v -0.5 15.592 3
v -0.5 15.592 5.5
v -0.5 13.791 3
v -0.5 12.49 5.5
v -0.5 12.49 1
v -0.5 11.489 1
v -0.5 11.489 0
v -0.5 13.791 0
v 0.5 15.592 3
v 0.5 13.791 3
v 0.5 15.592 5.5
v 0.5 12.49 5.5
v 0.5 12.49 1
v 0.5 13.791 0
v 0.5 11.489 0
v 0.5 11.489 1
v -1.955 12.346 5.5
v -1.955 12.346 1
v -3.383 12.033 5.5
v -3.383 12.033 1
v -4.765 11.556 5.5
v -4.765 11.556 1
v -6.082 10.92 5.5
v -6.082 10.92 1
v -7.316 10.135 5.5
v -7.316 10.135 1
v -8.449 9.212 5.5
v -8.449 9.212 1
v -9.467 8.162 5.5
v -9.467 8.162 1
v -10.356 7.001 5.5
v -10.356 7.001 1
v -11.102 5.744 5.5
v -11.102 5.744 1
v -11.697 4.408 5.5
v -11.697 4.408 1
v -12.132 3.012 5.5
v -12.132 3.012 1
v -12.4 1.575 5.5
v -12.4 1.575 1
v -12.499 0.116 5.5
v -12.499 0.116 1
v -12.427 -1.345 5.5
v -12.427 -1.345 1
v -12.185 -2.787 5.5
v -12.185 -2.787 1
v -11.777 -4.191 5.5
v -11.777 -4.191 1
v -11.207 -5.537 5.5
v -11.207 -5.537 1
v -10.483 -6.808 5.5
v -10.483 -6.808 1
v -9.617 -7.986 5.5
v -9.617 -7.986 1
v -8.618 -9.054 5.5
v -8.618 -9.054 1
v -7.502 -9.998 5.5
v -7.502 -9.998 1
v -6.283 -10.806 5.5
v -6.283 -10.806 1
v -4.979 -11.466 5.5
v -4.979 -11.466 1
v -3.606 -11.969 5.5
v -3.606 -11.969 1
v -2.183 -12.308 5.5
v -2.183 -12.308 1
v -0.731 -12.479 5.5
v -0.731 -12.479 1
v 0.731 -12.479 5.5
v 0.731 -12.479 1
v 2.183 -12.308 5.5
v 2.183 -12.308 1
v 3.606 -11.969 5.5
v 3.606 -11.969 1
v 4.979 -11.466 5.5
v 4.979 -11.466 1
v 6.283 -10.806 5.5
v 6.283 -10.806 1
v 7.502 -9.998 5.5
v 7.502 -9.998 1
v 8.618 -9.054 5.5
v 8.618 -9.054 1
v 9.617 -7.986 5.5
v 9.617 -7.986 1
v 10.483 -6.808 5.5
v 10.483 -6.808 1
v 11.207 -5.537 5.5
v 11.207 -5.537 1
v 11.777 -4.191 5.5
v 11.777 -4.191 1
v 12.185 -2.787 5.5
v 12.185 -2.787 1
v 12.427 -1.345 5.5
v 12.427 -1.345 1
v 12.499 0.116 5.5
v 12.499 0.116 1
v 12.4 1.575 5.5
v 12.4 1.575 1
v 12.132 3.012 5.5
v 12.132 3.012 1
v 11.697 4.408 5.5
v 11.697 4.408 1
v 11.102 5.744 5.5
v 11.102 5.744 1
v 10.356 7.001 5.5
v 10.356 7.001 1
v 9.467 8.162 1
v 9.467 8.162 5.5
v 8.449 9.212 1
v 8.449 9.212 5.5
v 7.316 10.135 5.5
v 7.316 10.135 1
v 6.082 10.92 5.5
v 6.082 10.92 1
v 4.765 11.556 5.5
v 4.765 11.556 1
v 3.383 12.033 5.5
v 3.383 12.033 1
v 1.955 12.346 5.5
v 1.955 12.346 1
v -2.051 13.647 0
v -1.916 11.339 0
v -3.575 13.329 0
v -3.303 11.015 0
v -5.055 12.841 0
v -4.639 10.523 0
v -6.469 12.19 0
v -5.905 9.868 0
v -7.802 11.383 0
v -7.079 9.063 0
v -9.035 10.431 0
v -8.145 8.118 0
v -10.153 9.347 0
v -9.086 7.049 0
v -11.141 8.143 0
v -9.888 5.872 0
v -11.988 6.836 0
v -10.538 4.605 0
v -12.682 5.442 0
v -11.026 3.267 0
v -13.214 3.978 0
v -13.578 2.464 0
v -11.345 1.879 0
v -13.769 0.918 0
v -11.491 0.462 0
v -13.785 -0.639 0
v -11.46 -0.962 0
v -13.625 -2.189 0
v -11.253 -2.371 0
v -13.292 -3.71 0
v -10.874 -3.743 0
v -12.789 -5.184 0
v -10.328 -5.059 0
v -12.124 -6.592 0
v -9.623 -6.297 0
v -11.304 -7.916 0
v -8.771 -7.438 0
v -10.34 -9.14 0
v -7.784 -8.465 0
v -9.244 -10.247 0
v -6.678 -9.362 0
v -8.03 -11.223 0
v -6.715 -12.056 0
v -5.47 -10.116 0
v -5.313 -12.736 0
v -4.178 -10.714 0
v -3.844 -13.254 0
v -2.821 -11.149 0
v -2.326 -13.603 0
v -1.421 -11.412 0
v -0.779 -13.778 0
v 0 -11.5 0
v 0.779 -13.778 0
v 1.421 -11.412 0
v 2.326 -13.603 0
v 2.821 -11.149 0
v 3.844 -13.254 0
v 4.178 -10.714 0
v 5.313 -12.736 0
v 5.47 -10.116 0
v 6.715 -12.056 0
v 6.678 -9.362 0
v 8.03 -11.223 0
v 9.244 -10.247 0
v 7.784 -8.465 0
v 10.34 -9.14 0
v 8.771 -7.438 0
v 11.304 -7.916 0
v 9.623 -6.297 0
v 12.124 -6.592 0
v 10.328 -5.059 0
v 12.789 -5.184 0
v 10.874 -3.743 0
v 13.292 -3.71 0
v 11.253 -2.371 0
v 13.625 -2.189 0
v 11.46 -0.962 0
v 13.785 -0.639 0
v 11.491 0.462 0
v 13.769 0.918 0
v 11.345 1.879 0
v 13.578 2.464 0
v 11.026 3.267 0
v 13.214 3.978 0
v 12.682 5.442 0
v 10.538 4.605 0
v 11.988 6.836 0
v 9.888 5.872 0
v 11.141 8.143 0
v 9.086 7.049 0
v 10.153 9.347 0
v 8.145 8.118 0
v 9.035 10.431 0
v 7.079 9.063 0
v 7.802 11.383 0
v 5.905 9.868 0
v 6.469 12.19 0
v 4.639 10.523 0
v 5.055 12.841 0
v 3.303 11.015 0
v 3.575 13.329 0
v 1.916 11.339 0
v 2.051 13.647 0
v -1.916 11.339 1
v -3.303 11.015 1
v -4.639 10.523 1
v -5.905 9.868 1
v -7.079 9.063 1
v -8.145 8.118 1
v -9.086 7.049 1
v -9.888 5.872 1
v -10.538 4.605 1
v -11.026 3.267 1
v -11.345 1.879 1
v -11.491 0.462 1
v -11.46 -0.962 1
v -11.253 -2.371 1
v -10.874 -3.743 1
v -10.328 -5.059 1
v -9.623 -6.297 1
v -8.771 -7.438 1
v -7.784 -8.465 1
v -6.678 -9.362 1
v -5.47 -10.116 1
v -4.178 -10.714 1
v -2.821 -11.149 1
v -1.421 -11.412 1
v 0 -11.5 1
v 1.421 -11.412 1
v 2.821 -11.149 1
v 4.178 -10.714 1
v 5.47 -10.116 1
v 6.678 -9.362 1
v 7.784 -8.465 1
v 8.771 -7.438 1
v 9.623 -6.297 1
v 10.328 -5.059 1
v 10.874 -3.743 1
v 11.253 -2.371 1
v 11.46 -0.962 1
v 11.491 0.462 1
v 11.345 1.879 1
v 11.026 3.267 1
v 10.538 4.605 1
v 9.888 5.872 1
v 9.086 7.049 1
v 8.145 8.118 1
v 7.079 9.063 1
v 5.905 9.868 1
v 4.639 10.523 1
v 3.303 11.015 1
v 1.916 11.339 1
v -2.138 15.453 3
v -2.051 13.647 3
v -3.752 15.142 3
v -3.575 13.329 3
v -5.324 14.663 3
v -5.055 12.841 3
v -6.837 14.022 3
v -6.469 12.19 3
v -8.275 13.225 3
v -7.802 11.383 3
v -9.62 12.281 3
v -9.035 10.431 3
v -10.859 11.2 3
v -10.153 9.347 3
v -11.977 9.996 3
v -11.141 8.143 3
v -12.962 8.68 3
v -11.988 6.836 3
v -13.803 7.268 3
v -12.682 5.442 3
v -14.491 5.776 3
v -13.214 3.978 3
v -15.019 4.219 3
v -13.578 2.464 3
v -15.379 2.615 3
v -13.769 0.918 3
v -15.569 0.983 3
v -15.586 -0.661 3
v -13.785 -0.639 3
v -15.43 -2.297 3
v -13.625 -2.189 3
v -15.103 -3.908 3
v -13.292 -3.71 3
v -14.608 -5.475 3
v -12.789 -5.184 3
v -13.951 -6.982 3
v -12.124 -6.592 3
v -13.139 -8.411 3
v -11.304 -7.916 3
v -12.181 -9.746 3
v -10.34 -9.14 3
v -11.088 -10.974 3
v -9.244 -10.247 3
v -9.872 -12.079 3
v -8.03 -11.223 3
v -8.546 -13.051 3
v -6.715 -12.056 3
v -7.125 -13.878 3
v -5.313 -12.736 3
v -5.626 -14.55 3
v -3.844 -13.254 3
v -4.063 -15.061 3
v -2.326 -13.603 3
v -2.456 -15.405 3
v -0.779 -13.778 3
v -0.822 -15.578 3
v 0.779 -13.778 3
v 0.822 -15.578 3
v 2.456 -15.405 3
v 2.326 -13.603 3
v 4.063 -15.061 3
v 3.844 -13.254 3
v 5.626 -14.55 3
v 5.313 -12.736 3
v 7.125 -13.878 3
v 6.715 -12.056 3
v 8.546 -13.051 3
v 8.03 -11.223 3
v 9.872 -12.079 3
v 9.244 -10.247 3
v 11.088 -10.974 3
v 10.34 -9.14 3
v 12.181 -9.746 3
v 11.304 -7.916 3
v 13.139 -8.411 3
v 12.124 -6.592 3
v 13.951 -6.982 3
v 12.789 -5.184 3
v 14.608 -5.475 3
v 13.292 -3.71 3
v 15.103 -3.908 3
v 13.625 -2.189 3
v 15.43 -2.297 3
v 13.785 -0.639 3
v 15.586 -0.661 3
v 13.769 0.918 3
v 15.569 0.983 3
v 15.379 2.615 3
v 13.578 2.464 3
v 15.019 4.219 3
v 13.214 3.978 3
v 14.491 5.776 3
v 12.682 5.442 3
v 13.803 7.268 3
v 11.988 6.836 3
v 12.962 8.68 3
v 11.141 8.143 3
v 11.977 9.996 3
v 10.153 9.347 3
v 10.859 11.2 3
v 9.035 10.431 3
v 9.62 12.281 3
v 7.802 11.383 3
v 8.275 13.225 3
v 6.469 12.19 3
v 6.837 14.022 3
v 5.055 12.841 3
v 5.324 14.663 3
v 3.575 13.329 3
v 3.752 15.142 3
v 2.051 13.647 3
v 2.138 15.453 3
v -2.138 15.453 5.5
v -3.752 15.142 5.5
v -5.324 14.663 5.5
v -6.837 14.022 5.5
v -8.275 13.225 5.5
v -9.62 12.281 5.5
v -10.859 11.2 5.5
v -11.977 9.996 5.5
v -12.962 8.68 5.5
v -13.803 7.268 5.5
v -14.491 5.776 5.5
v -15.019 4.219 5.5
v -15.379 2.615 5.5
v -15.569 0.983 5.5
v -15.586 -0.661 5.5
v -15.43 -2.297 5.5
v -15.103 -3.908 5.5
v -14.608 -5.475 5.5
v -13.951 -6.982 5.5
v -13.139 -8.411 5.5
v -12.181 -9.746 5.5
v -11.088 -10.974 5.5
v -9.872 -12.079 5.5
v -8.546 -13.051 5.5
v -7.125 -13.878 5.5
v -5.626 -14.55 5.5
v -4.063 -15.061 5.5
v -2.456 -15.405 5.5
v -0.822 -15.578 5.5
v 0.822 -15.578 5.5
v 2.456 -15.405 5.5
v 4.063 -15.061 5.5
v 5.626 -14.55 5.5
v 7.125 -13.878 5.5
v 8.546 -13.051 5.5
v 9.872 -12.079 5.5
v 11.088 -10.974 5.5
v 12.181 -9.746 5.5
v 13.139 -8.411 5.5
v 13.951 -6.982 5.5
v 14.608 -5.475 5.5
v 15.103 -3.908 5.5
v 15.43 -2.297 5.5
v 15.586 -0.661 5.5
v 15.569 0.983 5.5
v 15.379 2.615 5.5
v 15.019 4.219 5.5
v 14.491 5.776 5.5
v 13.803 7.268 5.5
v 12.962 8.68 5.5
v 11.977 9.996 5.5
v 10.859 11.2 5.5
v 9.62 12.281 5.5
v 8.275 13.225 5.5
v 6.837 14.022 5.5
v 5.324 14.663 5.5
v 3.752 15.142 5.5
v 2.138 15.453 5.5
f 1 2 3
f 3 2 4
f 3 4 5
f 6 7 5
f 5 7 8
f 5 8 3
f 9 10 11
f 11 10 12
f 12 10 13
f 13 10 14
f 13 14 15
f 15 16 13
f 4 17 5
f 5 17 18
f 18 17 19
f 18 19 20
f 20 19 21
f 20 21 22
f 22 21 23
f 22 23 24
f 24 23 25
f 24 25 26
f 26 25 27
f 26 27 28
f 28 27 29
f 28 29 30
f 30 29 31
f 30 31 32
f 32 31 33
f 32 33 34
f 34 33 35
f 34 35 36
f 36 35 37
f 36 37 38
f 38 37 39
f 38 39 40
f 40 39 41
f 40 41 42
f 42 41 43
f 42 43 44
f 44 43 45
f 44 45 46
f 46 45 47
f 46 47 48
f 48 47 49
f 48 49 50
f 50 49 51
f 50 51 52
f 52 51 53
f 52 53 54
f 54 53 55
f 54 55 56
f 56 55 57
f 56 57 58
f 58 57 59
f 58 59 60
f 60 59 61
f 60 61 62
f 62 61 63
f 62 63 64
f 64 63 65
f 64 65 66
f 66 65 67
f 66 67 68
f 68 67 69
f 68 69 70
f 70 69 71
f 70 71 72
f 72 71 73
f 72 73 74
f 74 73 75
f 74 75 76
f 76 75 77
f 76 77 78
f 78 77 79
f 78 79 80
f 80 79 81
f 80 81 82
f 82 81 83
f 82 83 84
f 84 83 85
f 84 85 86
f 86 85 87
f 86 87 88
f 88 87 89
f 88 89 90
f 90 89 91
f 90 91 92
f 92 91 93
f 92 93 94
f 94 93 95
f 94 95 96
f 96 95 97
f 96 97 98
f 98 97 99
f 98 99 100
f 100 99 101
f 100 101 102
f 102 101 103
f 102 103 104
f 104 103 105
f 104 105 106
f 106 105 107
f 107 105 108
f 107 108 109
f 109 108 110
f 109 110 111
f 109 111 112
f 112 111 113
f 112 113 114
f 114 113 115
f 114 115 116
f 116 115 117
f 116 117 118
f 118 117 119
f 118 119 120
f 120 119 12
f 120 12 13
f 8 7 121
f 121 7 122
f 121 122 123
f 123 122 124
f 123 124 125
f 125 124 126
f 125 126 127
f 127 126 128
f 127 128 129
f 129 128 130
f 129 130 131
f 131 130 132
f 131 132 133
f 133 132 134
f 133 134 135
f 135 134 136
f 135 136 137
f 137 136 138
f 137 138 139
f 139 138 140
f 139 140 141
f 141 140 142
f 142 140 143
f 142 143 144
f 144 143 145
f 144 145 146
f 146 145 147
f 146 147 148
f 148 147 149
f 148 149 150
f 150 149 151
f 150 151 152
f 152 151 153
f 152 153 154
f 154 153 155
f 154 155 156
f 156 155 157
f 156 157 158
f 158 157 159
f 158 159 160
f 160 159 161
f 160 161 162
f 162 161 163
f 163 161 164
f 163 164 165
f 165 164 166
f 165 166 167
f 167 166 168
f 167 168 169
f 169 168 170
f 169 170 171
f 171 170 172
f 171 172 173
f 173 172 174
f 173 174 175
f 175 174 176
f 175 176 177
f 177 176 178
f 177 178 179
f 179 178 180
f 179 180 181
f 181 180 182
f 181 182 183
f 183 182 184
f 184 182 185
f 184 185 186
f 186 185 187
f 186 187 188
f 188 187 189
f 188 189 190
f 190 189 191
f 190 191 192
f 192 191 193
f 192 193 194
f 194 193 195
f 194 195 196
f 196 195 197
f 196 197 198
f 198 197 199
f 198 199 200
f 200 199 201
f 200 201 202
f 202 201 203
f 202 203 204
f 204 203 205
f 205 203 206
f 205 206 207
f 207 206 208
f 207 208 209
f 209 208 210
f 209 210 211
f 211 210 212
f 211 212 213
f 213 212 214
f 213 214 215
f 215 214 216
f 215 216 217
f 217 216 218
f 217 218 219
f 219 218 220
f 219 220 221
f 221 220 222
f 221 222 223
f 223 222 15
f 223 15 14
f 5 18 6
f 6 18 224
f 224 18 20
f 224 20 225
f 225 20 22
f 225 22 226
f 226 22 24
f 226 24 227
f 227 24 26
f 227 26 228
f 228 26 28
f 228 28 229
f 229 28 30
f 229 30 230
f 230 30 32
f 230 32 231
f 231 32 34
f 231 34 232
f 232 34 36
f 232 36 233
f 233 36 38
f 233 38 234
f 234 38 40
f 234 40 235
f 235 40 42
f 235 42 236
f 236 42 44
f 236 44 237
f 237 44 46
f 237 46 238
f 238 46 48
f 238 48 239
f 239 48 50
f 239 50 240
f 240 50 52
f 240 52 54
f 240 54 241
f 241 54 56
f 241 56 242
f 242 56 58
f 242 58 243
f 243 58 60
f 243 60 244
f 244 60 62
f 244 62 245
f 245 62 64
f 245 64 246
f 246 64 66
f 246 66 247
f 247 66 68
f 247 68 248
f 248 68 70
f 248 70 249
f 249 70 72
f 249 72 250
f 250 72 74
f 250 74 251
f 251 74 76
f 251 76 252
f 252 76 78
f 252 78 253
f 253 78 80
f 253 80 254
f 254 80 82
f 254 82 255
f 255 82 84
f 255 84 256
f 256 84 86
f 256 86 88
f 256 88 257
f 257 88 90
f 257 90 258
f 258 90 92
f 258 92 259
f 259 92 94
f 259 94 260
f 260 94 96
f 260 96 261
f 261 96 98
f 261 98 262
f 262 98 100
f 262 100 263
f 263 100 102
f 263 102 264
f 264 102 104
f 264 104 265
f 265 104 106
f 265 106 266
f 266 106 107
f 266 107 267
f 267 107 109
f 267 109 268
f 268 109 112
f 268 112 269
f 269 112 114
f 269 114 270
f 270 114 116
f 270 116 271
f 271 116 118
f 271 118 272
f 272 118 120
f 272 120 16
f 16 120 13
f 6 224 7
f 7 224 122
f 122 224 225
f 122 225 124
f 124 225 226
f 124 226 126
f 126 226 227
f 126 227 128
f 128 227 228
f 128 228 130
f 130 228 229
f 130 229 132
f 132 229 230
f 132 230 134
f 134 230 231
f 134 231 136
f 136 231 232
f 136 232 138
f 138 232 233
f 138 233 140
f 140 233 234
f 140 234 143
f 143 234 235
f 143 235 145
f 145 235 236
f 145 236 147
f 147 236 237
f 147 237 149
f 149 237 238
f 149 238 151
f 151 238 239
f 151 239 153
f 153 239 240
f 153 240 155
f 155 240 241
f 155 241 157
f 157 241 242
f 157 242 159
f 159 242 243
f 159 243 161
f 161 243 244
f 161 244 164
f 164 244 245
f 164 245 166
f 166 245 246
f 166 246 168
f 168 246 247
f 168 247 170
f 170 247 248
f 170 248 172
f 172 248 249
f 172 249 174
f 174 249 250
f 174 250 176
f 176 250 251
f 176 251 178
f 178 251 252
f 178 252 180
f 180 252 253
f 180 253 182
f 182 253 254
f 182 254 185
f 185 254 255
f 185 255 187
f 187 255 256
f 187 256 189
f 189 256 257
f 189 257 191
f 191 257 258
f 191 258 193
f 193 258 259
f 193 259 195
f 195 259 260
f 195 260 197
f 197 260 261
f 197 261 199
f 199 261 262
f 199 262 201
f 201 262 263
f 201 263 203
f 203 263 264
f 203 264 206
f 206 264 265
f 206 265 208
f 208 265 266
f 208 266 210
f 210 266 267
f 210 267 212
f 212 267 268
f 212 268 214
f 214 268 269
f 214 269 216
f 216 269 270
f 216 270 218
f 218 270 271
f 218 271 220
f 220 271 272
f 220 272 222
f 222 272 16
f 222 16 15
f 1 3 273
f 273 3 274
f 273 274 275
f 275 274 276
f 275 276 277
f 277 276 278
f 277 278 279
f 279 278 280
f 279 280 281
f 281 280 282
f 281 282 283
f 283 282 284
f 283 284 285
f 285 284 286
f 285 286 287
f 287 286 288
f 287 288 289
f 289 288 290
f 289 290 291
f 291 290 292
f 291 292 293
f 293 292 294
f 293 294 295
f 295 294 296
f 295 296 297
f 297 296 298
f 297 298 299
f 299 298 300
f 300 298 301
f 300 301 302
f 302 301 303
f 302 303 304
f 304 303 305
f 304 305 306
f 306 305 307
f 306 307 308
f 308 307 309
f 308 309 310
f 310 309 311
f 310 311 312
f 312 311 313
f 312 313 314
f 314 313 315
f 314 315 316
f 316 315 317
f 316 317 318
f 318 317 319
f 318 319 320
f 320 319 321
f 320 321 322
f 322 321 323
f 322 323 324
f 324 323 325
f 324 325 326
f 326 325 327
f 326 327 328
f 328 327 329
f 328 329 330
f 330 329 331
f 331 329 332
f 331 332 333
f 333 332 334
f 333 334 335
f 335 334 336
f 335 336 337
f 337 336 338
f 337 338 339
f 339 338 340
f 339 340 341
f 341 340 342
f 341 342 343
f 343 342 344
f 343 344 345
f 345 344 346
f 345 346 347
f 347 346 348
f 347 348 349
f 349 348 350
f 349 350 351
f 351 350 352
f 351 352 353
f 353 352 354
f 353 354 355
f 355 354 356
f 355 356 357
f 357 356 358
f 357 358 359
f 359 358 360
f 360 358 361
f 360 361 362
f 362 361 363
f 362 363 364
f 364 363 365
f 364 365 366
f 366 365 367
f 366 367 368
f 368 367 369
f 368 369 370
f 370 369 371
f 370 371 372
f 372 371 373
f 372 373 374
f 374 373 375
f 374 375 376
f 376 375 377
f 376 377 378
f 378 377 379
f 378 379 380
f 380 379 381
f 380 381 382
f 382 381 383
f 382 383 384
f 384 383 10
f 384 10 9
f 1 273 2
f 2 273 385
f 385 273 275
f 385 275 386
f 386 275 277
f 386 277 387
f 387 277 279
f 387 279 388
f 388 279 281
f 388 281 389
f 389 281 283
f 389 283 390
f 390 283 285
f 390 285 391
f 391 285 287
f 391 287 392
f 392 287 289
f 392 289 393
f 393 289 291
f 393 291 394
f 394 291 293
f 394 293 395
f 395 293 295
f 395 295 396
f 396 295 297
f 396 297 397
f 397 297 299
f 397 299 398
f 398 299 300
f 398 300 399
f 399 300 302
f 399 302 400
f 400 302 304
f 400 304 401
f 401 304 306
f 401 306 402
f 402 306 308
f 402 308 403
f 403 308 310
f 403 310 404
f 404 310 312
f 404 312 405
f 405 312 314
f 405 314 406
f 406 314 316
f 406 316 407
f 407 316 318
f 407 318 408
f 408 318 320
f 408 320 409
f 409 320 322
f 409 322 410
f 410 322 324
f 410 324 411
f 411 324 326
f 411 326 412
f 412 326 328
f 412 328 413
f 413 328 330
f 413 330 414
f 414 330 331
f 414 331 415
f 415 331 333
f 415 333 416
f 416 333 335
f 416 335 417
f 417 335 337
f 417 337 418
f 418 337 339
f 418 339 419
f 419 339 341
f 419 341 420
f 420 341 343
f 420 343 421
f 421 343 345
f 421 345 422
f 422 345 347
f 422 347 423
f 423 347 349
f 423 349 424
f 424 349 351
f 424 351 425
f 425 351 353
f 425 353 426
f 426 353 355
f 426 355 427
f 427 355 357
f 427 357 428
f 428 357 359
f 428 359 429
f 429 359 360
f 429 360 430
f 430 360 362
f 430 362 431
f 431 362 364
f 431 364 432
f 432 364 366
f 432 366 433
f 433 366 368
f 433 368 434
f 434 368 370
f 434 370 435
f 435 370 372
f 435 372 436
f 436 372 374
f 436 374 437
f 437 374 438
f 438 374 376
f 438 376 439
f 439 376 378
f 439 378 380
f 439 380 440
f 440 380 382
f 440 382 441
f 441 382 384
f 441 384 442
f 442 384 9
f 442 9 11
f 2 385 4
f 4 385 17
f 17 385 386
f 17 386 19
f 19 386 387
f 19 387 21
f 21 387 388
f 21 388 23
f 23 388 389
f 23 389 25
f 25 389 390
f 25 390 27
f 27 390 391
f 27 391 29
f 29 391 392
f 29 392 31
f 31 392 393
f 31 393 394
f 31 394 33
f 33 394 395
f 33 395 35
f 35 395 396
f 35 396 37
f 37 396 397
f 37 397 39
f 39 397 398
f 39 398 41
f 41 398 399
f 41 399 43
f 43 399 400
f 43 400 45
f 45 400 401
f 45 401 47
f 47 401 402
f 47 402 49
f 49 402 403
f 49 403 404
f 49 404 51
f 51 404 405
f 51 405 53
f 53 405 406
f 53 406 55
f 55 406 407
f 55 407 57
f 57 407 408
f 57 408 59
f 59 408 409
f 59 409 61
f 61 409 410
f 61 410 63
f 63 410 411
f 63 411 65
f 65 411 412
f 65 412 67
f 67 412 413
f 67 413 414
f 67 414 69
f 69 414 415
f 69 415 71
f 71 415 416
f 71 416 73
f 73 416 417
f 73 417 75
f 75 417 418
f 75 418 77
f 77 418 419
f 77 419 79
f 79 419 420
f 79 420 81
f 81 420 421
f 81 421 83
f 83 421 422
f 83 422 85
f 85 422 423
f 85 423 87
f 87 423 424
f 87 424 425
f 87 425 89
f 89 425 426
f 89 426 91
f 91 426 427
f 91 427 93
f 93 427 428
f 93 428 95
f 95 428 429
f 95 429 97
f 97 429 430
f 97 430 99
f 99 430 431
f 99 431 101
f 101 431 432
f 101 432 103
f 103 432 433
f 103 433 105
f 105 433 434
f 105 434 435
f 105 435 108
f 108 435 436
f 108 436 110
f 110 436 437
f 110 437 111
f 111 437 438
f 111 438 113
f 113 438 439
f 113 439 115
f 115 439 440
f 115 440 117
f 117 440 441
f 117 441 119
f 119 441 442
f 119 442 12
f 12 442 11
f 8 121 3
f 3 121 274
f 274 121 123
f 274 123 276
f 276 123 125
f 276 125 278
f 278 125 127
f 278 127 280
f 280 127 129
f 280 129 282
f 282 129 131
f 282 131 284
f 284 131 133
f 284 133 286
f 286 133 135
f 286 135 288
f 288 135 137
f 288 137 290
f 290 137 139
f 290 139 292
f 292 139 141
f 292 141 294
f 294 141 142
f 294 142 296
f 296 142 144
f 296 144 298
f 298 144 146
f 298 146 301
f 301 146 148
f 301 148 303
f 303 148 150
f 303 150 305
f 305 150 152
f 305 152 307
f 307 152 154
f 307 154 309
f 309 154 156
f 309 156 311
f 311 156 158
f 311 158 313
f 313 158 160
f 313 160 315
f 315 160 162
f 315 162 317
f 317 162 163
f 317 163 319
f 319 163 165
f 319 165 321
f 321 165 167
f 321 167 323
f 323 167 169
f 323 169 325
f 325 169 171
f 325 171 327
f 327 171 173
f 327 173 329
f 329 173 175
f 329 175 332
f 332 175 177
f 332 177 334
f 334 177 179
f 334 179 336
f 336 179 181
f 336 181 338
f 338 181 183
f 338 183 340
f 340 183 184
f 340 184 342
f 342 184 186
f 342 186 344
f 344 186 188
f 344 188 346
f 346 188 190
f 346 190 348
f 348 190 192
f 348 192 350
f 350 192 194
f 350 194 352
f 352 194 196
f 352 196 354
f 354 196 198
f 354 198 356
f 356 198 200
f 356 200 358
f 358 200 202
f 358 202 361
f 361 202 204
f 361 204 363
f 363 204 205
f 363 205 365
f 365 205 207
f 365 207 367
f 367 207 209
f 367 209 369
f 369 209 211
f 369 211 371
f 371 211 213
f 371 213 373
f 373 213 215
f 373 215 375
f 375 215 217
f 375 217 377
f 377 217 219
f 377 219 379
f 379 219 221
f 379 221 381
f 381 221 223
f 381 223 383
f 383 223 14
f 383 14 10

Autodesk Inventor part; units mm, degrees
ref_plane "YZ Plane" through (0, 0, 0) normal (1, 0, 0) x (0, 1, 0)
ref_plane "XZ Plane" through (0, 0, 0) normal (0, 1, 0) x (-1, 0, 0)
ref_plane "XY Plane" through (0, 0, 0) normal (0, 0, 1) x (1, 0, 0)
sketch "Sketch1" plane through (0, 0, 0) normal (0, 0, 1) x (1, 0, 0)
  circle A0 centre (0, 0) radius 13.8
  circle A1 centre (0, 0) radius 11.5
  circle A2 centre (0, 0) radius 15.6
  circle A3 centre (0, 0) radius 12.5
  dimension "d0" = 27.6
  dimension "d1" = 23
  dimension "d2" = 31.2
  dimension "d3" = 25
extrude "Extrusion1" add sketch "Sketch1" along normal blind 1 contours A3
extrude "Extrusion2" add sketch "Sketch1" along normal blind 4 contours A0
sketch "Sketch2" plane through (0, 0, 4) normal (0, 0, 1) x (1, 0, 0)
  circle A0 centre (0, 0) radius 15.6 projected
  circle A1 centre (0, 0) radius 12.5 projected
extrude "Extrusion3" add sketch "Sketch2" along normal blind 1.5
extrude "Extrusion5" add sketch "Sketch2" against normal blind 1
sketch "Sketch3" plane through (0, 0, 5.5) normal (0, 0, 1) x (1, 0, 0)
  line L0 (0.5, 8.5) -> (-0.5, 8.5)
  line L1 (-0.5, 8.5) -> (-0.5, 16.5)
  line L2 (-0.5, 16.5) -> (0.5, 16.5)
  line L3 (0.5, 16.5) -> (0.5, 8.5)
  circle A0 centre (0, 0) radius 12.5 projected
  line L4 (0.5, 8.5) -> (-0.5, 16.5) construction
  line L5 (-0.5, 8.5) -> (0.5, 16.5) construction
  point P0 (0, 12.5)
  dimension "d10" = 1
  dimension "d11" = 8
extrude "Extrusion4" cut sketch "Sketch3" against normal blind 10 contours L0 L1 A0 L3 | A0 L1 L2 L3 picked at (0.0556, 9.833)
properties part number "25mmFilterAdapter"
